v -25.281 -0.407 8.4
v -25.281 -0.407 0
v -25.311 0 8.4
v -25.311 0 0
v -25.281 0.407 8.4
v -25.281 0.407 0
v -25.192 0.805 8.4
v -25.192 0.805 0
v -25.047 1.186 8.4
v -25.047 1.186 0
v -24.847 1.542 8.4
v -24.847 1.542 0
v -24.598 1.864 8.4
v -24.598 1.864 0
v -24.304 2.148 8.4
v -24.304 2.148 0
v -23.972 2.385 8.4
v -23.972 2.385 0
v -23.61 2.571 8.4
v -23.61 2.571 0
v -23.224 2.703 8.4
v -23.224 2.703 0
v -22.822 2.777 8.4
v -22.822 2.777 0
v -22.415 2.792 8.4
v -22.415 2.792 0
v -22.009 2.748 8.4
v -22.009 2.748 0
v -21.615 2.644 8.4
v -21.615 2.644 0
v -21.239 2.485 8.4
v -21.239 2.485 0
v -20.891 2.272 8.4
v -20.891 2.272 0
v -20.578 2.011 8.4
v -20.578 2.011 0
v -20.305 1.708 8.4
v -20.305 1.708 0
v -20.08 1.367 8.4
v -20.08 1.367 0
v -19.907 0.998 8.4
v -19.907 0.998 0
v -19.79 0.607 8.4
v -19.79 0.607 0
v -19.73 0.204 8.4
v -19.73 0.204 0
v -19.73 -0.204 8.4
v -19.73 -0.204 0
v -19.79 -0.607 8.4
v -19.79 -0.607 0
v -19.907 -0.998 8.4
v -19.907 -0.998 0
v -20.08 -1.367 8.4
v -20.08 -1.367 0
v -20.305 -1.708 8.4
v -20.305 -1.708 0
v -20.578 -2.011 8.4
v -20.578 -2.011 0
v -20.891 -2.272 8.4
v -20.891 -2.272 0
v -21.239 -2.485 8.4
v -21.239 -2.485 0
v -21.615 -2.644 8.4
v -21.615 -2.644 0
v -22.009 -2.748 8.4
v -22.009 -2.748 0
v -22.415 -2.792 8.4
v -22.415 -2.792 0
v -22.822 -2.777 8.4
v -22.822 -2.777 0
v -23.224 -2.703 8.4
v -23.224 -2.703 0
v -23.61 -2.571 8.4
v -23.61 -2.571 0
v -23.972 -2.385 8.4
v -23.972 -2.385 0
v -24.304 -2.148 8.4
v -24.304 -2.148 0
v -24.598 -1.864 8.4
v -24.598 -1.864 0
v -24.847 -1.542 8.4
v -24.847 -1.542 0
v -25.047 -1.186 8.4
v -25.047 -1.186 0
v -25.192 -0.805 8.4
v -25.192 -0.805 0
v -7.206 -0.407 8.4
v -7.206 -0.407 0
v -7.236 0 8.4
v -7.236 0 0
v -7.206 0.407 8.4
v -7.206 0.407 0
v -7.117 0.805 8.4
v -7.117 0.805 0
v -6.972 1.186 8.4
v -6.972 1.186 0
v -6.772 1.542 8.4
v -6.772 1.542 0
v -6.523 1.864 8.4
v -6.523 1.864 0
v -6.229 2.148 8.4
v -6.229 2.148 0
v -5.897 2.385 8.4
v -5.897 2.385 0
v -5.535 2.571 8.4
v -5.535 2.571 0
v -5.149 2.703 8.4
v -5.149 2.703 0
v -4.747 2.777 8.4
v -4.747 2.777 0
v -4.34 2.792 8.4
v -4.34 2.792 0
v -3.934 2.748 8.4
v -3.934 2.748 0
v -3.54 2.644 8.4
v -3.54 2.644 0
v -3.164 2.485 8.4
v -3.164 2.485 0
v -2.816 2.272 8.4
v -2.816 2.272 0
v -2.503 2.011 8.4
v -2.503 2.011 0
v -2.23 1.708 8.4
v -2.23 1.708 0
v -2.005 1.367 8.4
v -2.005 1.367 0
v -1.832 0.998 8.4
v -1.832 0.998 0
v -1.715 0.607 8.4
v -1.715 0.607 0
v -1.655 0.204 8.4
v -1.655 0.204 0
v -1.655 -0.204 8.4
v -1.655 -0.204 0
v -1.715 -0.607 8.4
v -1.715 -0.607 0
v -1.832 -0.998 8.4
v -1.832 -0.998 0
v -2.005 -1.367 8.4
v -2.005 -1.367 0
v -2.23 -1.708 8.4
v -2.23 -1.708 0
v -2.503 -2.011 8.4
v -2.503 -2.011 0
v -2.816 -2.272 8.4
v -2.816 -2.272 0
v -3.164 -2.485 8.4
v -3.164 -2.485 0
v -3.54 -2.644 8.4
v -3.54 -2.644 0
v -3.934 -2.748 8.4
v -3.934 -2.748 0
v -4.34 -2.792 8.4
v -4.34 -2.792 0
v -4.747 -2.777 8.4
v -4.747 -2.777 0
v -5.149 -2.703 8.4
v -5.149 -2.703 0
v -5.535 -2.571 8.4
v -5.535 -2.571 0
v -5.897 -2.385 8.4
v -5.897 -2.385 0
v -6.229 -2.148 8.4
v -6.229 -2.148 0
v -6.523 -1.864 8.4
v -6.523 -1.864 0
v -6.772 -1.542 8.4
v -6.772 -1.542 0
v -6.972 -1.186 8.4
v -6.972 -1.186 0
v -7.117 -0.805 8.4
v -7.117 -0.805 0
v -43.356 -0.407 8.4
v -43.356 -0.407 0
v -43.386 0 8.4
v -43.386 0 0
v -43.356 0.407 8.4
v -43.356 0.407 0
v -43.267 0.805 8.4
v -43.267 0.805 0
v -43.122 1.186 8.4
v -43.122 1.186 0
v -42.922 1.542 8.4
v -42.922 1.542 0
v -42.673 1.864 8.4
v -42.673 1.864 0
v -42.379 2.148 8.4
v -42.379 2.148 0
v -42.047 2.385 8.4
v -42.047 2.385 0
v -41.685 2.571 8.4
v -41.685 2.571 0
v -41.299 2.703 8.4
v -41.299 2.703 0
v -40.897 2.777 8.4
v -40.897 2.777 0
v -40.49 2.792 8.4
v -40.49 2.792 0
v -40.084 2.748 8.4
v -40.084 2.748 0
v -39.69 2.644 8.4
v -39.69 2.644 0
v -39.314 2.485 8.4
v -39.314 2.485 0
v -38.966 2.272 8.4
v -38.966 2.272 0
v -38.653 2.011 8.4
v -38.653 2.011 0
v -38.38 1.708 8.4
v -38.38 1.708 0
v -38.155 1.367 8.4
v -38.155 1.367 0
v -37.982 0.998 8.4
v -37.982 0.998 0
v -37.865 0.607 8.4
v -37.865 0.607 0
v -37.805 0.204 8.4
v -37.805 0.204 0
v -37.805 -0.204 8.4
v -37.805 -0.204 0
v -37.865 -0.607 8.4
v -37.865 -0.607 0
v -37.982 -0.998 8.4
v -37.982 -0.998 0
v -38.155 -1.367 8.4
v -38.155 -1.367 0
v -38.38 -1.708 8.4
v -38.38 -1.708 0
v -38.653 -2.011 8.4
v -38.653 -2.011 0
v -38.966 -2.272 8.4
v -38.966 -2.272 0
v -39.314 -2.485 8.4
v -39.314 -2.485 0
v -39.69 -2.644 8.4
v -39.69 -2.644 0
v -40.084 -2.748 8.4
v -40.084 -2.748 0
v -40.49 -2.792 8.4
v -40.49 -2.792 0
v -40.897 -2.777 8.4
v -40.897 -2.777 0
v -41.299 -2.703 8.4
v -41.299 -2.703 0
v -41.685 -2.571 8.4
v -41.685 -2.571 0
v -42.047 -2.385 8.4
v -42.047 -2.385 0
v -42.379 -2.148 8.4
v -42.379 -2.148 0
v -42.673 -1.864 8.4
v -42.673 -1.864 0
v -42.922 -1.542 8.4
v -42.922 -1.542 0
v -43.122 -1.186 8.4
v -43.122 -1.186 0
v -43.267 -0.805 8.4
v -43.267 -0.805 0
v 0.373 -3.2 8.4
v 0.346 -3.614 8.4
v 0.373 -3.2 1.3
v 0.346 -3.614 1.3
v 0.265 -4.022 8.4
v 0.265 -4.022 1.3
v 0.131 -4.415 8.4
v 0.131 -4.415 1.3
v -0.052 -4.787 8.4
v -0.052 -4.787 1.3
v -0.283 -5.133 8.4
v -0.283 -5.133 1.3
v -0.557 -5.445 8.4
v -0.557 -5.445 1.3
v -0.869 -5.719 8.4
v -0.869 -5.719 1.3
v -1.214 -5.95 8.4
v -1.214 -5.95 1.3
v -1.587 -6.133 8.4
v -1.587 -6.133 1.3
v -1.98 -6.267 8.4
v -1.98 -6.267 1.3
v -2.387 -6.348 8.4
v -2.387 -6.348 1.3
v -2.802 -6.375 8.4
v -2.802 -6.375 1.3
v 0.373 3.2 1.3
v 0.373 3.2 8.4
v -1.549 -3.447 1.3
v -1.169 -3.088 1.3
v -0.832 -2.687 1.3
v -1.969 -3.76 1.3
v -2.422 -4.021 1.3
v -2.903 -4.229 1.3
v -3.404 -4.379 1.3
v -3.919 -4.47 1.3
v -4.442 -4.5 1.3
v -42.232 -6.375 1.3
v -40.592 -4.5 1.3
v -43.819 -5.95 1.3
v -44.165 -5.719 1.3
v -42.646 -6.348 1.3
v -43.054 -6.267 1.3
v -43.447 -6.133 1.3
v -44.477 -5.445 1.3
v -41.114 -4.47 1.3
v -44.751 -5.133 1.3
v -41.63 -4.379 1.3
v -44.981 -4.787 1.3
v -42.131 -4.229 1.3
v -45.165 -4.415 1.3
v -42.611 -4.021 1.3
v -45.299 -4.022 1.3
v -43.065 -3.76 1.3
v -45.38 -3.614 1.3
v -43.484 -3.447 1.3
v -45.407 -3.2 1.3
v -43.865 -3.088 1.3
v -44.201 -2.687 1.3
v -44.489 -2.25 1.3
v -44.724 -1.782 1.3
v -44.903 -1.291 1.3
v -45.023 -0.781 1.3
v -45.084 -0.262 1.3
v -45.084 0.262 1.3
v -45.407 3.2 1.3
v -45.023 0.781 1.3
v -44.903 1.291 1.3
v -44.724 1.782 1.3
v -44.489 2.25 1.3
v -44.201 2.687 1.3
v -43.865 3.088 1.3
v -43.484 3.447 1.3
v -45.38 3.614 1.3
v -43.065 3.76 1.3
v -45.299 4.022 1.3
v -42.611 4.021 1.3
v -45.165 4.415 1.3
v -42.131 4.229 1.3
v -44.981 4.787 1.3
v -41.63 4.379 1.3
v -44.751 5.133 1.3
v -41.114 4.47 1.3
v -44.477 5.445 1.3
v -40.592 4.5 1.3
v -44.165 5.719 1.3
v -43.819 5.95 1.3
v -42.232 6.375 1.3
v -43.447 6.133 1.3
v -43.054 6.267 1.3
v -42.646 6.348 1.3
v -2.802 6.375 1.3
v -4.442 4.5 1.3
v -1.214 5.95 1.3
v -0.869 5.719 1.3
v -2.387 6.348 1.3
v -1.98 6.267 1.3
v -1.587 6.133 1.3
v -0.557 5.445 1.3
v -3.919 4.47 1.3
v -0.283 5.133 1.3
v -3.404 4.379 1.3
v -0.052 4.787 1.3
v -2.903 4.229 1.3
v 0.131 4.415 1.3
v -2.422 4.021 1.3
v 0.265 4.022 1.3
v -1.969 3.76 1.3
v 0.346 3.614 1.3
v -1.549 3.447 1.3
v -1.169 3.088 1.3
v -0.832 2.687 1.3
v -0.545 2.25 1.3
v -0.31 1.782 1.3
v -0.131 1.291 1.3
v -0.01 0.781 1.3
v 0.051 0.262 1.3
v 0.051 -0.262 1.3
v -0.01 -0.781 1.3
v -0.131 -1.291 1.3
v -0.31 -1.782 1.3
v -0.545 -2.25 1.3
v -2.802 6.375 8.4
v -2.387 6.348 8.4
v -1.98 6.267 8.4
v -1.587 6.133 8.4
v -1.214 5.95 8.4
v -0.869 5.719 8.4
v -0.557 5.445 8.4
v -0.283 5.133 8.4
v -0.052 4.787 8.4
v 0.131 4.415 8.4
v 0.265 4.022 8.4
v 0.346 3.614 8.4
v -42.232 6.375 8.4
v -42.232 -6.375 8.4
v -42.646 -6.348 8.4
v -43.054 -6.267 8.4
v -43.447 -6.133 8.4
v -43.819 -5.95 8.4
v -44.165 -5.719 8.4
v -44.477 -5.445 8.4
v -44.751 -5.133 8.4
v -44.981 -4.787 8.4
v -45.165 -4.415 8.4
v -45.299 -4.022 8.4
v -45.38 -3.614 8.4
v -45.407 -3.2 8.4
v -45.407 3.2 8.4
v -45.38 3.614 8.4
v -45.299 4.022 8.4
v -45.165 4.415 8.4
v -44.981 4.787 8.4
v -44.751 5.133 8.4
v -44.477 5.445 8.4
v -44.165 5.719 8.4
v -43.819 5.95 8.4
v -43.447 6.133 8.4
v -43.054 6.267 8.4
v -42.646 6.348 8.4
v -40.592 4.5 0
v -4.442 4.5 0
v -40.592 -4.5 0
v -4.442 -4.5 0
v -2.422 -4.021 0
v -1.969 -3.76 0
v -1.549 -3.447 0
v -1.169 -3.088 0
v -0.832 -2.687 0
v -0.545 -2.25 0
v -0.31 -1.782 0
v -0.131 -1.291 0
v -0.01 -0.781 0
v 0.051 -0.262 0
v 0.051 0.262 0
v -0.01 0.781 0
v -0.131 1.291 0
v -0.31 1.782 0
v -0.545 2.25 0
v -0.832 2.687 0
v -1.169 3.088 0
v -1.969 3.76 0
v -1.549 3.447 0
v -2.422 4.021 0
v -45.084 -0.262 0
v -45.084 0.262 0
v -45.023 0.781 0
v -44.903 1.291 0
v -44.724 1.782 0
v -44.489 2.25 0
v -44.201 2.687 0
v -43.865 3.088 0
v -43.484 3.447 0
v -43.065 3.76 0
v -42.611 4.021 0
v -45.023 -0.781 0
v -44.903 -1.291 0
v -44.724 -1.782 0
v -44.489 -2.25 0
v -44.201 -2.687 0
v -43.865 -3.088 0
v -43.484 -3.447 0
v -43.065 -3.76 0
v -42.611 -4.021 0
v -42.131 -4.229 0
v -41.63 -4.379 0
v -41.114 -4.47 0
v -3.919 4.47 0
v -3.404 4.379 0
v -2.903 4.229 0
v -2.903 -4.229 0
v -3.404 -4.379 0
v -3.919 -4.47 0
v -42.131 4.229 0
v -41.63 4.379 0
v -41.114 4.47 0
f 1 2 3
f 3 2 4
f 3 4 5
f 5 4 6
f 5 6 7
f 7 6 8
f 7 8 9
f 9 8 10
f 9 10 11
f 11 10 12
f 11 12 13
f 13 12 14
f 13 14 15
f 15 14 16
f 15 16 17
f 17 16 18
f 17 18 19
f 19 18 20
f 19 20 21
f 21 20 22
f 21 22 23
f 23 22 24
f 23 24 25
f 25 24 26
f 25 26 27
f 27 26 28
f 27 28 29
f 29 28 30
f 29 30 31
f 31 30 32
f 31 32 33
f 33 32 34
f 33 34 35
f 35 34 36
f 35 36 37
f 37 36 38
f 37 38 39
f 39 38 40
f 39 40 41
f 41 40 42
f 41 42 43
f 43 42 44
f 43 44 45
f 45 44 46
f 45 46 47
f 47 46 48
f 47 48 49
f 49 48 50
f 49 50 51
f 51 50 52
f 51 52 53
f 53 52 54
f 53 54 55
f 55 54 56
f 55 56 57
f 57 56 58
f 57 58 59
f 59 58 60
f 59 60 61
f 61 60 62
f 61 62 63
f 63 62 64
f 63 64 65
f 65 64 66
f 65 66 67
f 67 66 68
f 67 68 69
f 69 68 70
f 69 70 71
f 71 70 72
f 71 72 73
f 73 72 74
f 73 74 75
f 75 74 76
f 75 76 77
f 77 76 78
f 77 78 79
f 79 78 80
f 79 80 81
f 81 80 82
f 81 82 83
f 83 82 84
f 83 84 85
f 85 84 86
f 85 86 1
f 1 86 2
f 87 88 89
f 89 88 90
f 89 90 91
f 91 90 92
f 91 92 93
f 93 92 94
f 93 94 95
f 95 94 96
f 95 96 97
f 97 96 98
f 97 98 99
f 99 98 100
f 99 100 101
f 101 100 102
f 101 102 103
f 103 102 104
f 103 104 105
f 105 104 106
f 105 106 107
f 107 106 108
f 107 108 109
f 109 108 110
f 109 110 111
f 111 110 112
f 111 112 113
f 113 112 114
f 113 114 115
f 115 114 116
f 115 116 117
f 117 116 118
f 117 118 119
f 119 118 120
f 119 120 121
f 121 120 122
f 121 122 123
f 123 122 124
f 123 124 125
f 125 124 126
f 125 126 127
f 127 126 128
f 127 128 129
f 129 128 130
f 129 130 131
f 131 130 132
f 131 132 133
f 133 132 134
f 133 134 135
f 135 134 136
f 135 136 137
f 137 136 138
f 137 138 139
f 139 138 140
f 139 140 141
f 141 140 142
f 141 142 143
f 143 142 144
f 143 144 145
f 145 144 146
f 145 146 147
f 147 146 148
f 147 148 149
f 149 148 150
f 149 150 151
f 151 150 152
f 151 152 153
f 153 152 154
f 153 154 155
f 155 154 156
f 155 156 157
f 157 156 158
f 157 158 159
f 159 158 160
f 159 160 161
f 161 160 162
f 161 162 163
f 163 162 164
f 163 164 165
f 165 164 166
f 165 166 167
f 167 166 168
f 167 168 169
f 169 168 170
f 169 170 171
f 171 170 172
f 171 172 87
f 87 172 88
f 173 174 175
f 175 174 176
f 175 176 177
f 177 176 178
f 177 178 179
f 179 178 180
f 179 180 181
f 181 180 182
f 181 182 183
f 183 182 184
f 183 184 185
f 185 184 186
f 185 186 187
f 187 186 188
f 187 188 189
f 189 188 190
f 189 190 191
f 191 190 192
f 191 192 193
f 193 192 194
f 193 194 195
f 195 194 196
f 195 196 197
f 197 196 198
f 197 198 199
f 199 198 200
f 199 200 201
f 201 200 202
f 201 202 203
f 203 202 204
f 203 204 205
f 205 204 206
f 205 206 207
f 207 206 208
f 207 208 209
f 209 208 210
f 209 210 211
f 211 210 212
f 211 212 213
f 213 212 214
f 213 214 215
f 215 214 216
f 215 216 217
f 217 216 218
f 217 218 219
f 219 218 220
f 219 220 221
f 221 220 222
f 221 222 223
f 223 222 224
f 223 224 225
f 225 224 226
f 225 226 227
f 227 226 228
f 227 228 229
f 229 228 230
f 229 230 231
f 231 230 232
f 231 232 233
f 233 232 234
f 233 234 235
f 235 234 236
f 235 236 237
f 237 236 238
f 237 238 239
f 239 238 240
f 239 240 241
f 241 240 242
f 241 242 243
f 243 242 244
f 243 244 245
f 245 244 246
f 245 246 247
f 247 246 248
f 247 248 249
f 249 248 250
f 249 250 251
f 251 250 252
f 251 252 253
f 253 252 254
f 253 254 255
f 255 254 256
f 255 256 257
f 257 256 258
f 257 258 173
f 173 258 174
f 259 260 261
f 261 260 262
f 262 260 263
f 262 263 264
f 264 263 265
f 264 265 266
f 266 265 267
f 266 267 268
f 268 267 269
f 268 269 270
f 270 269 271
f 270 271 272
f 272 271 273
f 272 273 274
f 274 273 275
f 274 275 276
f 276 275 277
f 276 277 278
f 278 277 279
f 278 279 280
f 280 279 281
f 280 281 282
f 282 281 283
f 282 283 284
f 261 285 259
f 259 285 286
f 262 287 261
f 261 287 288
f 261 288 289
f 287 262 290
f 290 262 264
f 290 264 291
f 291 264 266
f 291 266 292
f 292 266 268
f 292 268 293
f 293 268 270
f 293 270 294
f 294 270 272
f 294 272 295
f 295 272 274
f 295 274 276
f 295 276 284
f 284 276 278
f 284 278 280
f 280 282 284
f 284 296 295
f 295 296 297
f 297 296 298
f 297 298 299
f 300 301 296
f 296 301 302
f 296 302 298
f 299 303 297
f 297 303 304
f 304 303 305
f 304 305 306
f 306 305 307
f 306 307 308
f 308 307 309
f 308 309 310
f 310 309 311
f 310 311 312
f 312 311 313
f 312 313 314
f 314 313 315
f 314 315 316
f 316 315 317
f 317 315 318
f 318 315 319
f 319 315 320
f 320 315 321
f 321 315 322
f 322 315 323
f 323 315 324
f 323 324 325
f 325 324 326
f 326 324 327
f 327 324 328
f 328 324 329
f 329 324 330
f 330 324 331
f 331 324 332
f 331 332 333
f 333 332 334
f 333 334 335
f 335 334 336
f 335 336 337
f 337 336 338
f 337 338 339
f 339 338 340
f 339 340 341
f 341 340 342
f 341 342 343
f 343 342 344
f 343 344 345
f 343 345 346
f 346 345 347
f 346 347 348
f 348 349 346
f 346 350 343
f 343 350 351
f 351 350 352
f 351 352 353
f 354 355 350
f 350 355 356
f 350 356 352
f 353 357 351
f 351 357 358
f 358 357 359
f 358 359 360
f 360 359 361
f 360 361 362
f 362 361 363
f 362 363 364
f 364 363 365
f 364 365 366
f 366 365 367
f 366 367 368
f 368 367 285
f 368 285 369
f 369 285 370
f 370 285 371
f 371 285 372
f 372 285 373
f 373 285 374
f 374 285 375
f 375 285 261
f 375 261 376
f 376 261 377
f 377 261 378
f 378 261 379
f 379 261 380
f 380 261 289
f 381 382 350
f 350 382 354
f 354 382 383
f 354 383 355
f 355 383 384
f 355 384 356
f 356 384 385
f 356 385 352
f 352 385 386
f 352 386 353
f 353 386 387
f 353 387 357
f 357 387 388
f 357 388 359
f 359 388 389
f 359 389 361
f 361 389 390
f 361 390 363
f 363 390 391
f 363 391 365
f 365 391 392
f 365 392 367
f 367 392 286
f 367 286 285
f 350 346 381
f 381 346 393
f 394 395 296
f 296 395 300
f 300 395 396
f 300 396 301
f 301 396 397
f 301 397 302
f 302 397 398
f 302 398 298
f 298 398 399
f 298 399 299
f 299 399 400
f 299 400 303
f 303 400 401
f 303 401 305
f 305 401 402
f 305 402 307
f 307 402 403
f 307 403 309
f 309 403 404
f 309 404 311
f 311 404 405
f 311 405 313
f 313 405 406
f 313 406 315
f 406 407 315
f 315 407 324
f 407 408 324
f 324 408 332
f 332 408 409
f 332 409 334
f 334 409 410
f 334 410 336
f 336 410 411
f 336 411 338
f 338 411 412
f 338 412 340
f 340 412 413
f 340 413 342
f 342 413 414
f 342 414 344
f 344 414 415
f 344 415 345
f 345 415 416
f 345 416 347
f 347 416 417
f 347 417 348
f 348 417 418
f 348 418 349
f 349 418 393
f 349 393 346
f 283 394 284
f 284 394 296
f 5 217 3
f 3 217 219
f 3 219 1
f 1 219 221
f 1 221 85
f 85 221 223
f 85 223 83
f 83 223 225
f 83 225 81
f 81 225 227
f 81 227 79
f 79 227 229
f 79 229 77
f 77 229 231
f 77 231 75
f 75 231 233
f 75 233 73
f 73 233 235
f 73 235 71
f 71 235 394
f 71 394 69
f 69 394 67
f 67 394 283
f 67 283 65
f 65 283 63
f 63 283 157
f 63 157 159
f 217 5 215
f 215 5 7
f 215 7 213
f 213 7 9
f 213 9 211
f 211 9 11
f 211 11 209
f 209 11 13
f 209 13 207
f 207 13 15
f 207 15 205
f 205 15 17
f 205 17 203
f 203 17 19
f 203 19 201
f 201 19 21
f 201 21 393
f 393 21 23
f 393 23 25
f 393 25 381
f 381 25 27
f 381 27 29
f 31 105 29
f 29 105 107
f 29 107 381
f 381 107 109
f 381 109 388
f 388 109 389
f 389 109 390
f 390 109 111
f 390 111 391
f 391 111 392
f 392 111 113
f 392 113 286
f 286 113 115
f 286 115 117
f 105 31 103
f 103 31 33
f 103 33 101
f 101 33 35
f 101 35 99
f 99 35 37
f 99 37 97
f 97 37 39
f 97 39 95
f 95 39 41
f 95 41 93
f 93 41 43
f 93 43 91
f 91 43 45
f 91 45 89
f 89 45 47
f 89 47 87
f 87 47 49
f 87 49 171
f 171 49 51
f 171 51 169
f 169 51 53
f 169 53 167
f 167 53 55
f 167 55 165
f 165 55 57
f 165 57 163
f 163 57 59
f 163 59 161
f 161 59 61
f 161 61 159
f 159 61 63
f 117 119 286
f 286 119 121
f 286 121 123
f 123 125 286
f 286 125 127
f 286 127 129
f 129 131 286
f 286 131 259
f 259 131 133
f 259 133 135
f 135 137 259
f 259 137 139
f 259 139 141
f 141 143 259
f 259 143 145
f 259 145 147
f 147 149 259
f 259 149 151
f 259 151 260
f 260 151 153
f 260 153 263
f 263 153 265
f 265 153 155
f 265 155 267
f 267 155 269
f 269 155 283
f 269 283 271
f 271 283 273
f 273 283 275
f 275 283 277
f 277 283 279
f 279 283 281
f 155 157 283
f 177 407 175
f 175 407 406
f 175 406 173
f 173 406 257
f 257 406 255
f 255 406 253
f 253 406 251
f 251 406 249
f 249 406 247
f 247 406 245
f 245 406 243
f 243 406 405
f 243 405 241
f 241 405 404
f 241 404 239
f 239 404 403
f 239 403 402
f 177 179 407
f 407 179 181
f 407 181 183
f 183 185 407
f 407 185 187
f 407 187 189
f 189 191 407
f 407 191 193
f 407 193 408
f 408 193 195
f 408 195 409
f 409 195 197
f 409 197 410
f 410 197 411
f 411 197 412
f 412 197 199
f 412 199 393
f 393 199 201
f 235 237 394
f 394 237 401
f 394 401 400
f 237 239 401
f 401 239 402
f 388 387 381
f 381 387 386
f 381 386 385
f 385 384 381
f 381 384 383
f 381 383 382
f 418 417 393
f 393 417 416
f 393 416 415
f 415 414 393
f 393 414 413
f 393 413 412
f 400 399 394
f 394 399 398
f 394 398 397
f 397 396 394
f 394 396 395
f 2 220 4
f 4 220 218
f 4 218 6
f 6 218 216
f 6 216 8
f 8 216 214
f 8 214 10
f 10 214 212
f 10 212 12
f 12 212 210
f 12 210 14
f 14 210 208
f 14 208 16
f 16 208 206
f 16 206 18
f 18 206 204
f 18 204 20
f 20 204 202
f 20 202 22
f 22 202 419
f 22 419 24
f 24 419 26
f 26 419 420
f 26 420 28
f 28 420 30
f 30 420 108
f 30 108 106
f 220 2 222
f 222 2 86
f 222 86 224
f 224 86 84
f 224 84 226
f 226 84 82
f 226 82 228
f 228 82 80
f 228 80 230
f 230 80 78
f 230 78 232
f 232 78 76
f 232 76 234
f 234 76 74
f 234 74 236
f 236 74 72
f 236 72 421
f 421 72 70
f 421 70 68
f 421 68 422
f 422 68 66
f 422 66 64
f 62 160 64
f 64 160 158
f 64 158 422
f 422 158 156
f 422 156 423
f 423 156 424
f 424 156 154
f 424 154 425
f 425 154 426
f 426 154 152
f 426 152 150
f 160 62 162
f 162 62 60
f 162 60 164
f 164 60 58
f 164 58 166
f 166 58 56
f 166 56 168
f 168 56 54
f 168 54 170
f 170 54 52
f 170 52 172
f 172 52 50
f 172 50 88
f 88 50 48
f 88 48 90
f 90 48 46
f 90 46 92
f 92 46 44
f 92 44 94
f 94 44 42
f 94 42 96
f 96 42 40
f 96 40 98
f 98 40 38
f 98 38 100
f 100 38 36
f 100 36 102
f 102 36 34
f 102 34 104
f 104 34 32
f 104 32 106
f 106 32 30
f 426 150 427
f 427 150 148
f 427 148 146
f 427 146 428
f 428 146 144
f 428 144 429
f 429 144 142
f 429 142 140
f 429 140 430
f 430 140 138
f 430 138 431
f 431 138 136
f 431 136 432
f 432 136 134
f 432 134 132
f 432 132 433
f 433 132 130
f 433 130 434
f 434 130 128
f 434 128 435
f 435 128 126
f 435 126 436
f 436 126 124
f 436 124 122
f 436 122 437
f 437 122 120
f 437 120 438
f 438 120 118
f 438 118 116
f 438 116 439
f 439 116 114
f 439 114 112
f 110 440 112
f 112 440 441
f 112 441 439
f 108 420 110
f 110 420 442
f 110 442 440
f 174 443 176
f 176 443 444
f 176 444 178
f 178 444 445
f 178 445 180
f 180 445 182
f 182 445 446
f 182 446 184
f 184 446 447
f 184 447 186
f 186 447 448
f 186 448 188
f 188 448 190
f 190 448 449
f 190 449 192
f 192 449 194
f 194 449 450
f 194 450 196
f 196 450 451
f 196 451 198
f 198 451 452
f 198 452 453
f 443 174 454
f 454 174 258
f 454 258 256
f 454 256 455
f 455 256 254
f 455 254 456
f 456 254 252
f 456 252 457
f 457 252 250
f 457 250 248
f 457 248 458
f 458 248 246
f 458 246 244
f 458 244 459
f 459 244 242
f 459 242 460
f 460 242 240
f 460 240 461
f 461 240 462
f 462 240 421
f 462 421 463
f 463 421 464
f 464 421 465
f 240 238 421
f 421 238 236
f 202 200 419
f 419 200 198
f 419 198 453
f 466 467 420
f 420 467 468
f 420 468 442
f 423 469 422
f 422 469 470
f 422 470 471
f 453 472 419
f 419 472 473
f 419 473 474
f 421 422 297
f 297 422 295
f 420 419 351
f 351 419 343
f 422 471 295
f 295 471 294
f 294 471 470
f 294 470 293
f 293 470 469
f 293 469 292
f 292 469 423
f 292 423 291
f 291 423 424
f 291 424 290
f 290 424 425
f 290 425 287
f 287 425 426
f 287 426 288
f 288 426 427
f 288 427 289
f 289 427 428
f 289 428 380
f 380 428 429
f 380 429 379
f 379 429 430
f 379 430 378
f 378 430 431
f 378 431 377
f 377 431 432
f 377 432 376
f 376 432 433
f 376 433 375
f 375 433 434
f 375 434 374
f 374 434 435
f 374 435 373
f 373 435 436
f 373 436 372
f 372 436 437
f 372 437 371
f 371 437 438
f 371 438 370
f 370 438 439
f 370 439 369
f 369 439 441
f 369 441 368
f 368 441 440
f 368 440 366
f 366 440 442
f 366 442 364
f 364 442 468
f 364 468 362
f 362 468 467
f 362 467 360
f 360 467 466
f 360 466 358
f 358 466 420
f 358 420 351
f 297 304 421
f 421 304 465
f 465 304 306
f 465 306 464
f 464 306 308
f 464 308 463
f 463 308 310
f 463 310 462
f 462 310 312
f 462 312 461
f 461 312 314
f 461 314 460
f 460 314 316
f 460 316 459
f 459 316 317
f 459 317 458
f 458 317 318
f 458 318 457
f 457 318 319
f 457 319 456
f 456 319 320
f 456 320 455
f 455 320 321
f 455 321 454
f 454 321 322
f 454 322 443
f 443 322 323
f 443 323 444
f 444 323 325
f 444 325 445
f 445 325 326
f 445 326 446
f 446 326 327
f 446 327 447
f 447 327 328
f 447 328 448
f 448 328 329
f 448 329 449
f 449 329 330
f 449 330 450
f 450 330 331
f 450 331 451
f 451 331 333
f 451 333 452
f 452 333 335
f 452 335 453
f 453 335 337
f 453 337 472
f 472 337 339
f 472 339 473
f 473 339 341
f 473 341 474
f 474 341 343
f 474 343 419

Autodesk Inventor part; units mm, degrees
ref_plane "YZ Plane" through (0, 0, 0) normal (1, 0, 0) x (0, 1, 0)
ref_plane "XZ Plane" through (0, 0, 0) normal (0, 1, 0) x (-1, 0, 0)
ref_plane "XY Plane" through (0, 0, 0) normal (0, 0, 1) x (1, 0, 0)
sketch "Sketch1" plane through (0, 0, 0) normal (0, 0, 1) x (1, 0, 0)
  circle A0 centre (-40.5918, 0) radius 2.4892 construction
  circle A1 centre (-22.5168, 0) radius 2.4892 construction
  circle A2 centre (-4.4418, 0) radius 2.4892 construction
  circle A3 centre (-40.5918, 0) radius 4.5
  circle A4 centre (-4.4418, 0) radius 4.5
  line L0 (-40.5918, 4.5) -> (-4.4418, 4.5)
  line L1 (-4.4418, 4.5) -> (-4.4418, -4.5)
  line L2 (-4.4418, -4.5) -> (-40.5918, -4.5)
  line L3 (-40.5918, -4.5) -> (-40.5918, 4.5)
  point P0 (0, 0)
  dimension "d1" = 9
extrude "Extrusion1" add sketch "Sketch1" along normal blind 1.3
sketch "Sketch2" plane through (0, 0, 1.3) normal (0, 0, 1) x (1, 0, 0)
  line L0 (-45.4068, 6.375) -> (0.3732, 6.375)
  line L1 (0.3732, 6.375) -> (0.3732, -6.375)
  line L2 (0.3732, -6.375) -> (-45.4068, -6.375)
  line L3 (-45.4068, -6.375) -> (-45.4068, 6.375)
  circle A0 centre (-22.5168, 0) radius 2.4892 construction
  point P0 (0, 0)
  dimension "d4" = 45.78
  dimension "d5" = 22.89
  dimension "d6" = 12.75
  dimension "d7" = 6.375
extrude "Extrusion2" add sketch "Sketch2" along normal blind 7.1
fillet "Fillet1" radius 3.175 4 edges at (-45.4068, 6.375, 4.85) (-45.4068, -6.375, 4.85) (0.3732, 6.375, 4.85) (0.3732, -6.375, 4.85)
sketch "Sketch3" plane through (0, 0, 0) normal (0, 0, -1) x (-1, 0, 0)
  circle A0 centre (4.4418, 0) radius 2.4892 construction
  circle A1 centre (22.5168, 0) radius 2.4892 construction
  circle A2 centre (40.5918, 0) radius 2.4892 construction
  circle A3 centre (4.4418, 0) radius 2.794
  circle A4 centre (22.5168, 0) radius 2.794
  circle A5 centre (40.5918, 0) radius 2.794
  point P0 (0, 0)
  dimension "d11" = 5.588
extrude "Extrusion3" cut sketch "Sketch3" against normal through all
equation "\"d5\" = 0.5 * d4"
equation "\"d7\" = 0.5 * d6"
properties part number "NerfBottomStandoff"
